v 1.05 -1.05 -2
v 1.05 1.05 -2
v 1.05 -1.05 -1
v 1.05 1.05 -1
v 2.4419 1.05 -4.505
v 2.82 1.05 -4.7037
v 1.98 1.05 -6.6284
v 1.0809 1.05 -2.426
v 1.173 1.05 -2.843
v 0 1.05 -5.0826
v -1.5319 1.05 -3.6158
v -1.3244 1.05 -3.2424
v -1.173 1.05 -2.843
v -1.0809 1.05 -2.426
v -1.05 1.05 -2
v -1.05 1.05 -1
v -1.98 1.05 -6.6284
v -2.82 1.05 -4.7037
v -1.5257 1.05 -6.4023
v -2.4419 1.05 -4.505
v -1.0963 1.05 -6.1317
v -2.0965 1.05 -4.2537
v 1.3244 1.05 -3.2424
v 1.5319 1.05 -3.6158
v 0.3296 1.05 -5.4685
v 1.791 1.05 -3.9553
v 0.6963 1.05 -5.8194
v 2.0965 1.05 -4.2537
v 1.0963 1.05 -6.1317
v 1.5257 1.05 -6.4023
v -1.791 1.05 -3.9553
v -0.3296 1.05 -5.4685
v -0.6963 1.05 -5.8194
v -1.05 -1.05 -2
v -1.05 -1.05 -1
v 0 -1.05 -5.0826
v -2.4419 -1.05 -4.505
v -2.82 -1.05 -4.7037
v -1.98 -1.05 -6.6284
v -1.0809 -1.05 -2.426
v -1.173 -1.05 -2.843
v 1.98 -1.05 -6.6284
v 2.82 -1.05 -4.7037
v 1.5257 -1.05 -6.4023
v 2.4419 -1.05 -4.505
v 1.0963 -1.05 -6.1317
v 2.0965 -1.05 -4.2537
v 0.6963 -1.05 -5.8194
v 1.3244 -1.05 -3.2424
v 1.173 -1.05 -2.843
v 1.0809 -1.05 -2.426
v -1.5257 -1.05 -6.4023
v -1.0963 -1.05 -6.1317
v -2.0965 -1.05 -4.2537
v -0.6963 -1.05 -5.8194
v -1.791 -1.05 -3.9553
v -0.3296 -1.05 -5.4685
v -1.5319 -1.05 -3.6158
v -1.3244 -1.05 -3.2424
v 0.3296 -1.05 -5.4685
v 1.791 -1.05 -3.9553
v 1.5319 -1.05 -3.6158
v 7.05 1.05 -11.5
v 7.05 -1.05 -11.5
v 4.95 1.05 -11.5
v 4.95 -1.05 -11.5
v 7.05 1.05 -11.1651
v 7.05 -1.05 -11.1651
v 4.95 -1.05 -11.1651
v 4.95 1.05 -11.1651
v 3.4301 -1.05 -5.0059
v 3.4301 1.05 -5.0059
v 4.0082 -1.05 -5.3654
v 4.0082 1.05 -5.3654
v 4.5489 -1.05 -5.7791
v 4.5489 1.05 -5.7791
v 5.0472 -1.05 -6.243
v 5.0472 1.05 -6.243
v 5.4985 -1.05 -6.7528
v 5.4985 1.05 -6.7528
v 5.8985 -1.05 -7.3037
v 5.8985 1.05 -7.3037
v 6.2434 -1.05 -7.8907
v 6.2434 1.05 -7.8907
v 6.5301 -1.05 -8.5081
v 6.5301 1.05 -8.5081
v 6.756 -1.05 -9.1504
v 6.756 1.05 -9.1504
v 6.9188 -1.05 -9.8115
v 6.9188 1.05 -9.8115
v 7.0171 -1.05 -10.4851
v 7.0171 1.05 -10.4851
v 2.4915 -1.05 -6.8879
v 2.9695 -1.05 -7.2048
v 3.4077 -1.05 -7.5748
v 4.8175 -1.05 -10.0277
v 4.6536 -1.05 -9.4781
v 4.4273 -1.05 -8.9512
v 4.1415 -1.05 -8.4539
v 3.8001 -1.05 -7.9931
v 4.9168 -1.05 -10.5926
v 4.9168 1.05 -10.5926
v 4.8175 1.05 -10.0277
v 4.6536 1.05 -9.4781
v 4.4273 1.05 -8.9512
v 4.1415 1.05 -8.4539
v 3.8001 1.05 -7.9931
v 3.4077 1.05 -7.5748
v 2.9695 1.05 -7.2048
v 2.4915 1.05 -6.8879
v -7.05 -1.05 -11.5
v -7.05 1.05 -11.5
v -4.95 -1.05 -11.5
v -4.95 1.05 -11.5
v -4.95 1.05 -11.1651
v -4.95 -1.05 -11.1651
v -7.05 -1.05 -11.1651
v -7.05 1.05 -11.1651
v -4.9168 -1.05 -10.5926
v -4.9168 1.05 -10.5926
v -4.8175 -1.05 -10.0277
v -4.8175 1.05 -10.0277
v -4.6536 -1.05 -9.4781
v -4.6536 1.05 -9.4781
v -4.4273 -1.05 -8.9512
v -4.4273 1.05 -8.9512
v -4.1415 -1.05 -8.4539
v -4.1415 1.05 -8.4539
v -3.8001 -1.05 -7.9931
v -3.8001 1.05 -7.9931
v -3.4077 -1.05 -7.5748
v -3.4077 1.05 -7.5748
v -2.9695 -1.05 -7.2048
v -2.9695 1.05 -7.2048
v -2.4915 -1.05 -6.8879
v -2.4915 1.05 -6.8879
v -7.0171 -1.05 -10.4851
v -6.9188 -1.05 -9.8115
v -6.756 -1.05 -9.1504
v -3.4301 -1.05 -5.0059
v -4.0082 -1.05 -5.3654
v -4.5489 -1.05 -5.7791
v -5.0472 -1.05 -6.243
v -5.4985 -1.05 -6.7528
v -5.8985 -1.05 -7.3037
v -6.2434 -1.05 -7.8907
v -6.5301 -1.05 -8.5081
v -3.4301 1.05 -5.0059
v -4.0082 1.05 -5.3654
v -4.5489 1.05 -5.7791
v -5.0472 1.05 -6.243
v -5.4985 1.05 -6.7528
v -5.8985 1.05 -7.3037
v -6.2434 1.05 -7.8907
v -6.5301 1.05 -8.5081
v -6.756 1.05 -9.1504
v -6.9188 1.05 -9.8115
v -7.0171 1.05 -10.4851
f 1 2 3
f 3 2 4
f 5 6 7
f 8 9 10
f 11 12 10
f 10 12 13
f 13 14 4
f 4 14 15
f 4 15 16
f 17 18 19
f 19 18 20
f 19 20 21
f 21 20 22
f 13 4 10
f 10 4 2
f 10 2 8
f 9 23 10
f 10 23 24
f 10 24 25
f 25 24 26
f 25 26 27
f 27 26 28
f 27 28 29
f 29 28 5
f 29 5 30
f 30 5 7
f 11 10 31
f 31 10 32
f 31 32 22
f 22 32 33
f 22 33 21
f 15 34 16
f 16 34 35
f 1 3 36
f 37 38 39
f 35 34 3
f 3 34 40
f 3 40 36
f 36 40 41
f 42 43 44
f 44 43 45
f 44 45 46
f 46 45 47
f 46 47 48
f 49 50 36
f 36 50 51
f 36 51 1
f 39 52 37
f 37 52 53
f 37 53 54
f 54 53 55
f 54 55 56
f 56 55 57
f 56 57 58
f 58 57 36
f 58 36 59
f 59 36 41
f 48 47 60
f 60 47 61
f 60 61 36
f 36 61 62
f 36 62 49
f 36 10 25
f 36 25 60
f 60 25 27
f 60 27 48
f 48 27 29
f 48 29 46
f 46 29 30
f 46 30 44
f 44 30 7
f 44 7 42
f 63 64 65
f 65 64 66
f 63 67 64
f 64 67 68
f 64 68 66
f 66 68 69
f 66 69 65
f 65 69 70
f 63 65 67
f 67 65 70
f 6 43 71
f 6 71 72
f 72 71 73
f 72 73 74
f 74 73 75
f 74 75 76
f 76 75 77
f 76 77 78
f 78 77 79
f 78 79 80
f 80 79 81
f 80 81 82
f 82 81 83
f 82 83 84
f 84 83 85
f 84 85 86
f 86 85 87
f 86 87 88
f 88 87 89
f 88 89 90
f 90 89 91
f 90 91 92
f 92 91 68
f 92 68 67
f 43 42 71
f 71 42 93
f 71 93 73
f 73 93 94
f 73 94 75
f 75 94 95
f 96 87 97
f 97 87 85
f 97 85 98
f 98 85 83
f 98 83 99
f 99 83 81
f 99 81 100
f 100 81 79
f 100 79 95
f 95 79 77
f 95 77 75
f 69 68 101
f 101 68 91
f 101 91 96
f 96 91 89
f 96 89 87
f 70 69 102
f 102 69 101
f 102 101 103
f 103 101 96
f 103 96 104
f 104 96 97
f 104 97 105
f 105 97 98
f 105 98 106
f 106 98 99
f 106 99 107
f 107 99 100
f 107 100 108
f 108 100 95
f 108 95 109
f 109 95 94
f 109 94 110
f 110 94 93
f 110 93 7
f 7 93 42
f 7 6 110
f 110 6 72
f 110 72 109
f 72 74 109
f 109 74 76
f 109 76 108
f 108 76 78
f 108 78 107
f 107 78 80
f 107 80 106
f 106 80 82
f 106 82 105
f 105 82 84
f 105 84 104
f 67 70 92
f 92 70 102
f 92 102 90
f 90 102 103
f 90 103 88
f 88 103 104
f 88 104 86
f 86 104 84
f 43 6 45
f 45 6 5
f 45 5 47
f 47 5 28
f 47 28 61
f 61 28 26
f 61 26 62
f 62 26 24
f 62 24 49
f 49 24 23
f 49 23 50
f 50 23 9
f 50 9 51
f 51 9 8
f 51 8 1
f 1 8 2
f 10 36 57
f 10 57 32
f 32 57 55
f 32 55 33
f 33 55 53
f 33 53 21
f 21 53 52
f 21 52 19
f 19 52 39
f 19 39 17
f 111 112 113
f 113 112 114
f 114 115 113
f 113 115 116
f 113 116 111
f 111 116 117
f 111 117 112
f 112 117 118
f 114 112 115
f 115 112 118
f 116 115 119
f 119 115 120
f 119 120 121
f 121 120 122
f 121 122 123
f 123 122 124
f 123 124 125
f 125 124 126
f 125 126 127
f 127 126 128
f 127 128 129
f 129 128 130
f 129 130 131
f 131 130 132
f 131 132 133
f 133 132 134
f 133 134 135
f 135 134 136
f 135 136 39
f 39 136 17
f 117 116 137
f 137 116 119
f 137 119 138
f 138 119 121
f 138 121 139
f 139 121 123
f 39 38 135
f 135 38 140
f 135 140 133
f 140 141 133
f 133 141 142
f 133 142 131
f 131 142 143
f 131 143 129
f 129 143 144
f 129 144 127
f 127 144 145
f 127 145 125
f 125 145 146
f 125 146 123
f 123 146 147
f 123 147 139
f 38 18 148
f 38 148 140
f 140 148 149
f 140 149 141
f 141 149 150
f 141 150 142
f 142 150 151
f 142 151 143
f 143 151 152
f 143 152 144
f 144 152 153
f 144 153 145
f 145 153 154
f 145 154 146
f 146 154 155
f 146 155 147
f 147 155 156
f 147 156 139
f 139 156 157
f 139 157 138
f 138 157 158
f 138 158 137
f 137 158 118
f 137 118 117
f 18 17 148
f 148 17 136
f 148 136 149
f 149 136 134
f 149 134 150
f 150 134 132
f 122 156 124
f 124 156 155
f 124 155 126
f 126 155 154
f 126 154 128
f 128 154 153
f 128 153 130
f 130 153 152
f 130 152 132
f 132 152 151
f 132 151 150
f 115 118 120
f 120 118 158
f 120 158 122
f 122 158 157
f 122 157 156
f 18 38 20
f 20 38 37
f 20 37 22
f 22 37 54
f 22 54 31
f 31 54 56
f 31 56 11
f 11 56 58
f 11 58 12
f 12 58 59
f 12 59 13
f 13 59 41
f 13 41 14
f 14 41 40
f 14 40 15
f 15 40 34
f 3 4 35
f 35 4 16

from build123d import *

# Parameters (mm, degrees)
SKETCH1_W           = 2.1
SKETCH1_H           = 2.1
BOSS_EXTRUDE1_DEPTH = 1
SKETCH4_W           = 2.1
SKETCH4_H           = 2.1
BOSS_EXTRUDE3_DEPTH = 2
SWEEP4_START        = -1.05
SWEEP4_DEPTH        = 2.1
SKETCH7_W           = 2.1
SKETCH7_H           = 2.1
CUT_EXTRUDE1_DEPTH  = 2


# Read off the part's stored shape, not the designer's step: Sweep4
with BuildPart() as part:
    # Sketch1 → Boss-Extrude1 (new body)
    with BuildSketch(Plane.XY):
        Rectangle(SKETCH1_W, SKETCH1_H)
    extrude(amount=BOSS_EXTRUDE1_DEPTH)

    # Sketch4 → Boss-Extrude3 (add)
    with BuildSketch(Plane.XY):
        Rectangle(SKETCH4_W, SKETCH4_H)
    extrude(amount=-BOSS_EXTRUDE3_DEPTH)

    # Sweep4 outline → Sweep4 (add)
    with BuildSketch(Plane(origin=(0, 0, 0), x_dir=(1, 0, 0), z_dir=(0, 1, 0)).offset(SWEEP4_START)):
        with BuildLine():
            Line((7.04999865, 11.165148445), (7.04999919, 11.5))
            Line((7.04999919, 11.5), (4.94999919, 11.5))
            Line((4.94999919, 11.5), (4.94999865, 11.165148445))
            ThreePointArc((4.94999865, 11.165148445), (4.141466162, 8.453922768), (1.979999995, 6.628399977))
            ThreePointArc((1.979999995, 6.628399977), (-0.225133297, 4.765998667), (-1.05, 2))
            Line((-1.05, 2), (1.05, 2))
            ThreePointArc((1.05, 2), (1.531852827, 3.615781399), (2.819999682, 4.703719521))
            ThreePointArc((2.819999682, 4.703719521), (5.898452285, 7.303705501), (7.04999865, 11.165148445))
        make_face()
    sweep4 = extrude(amount=SWEEP4_DEPTH)

    # Mirror1: Sweep4 across plane
    add(sweep4.mirror(Plane(origin=(0, 0, 0), x_dir=(0, 0, 1), z_dir=(1, 0, 0))))

    # Sketch7 → Cut-Extrude1 (cut)
    with BuildSketch(Plane.XY.offset(1)):
        Rectangle(SKETCH7_W, SKETCH7_H)
    extrude(amount=-CUT_EXTRUDE1_DEPTH, mode=Mode.SUBTRACT)


solid = part.part
